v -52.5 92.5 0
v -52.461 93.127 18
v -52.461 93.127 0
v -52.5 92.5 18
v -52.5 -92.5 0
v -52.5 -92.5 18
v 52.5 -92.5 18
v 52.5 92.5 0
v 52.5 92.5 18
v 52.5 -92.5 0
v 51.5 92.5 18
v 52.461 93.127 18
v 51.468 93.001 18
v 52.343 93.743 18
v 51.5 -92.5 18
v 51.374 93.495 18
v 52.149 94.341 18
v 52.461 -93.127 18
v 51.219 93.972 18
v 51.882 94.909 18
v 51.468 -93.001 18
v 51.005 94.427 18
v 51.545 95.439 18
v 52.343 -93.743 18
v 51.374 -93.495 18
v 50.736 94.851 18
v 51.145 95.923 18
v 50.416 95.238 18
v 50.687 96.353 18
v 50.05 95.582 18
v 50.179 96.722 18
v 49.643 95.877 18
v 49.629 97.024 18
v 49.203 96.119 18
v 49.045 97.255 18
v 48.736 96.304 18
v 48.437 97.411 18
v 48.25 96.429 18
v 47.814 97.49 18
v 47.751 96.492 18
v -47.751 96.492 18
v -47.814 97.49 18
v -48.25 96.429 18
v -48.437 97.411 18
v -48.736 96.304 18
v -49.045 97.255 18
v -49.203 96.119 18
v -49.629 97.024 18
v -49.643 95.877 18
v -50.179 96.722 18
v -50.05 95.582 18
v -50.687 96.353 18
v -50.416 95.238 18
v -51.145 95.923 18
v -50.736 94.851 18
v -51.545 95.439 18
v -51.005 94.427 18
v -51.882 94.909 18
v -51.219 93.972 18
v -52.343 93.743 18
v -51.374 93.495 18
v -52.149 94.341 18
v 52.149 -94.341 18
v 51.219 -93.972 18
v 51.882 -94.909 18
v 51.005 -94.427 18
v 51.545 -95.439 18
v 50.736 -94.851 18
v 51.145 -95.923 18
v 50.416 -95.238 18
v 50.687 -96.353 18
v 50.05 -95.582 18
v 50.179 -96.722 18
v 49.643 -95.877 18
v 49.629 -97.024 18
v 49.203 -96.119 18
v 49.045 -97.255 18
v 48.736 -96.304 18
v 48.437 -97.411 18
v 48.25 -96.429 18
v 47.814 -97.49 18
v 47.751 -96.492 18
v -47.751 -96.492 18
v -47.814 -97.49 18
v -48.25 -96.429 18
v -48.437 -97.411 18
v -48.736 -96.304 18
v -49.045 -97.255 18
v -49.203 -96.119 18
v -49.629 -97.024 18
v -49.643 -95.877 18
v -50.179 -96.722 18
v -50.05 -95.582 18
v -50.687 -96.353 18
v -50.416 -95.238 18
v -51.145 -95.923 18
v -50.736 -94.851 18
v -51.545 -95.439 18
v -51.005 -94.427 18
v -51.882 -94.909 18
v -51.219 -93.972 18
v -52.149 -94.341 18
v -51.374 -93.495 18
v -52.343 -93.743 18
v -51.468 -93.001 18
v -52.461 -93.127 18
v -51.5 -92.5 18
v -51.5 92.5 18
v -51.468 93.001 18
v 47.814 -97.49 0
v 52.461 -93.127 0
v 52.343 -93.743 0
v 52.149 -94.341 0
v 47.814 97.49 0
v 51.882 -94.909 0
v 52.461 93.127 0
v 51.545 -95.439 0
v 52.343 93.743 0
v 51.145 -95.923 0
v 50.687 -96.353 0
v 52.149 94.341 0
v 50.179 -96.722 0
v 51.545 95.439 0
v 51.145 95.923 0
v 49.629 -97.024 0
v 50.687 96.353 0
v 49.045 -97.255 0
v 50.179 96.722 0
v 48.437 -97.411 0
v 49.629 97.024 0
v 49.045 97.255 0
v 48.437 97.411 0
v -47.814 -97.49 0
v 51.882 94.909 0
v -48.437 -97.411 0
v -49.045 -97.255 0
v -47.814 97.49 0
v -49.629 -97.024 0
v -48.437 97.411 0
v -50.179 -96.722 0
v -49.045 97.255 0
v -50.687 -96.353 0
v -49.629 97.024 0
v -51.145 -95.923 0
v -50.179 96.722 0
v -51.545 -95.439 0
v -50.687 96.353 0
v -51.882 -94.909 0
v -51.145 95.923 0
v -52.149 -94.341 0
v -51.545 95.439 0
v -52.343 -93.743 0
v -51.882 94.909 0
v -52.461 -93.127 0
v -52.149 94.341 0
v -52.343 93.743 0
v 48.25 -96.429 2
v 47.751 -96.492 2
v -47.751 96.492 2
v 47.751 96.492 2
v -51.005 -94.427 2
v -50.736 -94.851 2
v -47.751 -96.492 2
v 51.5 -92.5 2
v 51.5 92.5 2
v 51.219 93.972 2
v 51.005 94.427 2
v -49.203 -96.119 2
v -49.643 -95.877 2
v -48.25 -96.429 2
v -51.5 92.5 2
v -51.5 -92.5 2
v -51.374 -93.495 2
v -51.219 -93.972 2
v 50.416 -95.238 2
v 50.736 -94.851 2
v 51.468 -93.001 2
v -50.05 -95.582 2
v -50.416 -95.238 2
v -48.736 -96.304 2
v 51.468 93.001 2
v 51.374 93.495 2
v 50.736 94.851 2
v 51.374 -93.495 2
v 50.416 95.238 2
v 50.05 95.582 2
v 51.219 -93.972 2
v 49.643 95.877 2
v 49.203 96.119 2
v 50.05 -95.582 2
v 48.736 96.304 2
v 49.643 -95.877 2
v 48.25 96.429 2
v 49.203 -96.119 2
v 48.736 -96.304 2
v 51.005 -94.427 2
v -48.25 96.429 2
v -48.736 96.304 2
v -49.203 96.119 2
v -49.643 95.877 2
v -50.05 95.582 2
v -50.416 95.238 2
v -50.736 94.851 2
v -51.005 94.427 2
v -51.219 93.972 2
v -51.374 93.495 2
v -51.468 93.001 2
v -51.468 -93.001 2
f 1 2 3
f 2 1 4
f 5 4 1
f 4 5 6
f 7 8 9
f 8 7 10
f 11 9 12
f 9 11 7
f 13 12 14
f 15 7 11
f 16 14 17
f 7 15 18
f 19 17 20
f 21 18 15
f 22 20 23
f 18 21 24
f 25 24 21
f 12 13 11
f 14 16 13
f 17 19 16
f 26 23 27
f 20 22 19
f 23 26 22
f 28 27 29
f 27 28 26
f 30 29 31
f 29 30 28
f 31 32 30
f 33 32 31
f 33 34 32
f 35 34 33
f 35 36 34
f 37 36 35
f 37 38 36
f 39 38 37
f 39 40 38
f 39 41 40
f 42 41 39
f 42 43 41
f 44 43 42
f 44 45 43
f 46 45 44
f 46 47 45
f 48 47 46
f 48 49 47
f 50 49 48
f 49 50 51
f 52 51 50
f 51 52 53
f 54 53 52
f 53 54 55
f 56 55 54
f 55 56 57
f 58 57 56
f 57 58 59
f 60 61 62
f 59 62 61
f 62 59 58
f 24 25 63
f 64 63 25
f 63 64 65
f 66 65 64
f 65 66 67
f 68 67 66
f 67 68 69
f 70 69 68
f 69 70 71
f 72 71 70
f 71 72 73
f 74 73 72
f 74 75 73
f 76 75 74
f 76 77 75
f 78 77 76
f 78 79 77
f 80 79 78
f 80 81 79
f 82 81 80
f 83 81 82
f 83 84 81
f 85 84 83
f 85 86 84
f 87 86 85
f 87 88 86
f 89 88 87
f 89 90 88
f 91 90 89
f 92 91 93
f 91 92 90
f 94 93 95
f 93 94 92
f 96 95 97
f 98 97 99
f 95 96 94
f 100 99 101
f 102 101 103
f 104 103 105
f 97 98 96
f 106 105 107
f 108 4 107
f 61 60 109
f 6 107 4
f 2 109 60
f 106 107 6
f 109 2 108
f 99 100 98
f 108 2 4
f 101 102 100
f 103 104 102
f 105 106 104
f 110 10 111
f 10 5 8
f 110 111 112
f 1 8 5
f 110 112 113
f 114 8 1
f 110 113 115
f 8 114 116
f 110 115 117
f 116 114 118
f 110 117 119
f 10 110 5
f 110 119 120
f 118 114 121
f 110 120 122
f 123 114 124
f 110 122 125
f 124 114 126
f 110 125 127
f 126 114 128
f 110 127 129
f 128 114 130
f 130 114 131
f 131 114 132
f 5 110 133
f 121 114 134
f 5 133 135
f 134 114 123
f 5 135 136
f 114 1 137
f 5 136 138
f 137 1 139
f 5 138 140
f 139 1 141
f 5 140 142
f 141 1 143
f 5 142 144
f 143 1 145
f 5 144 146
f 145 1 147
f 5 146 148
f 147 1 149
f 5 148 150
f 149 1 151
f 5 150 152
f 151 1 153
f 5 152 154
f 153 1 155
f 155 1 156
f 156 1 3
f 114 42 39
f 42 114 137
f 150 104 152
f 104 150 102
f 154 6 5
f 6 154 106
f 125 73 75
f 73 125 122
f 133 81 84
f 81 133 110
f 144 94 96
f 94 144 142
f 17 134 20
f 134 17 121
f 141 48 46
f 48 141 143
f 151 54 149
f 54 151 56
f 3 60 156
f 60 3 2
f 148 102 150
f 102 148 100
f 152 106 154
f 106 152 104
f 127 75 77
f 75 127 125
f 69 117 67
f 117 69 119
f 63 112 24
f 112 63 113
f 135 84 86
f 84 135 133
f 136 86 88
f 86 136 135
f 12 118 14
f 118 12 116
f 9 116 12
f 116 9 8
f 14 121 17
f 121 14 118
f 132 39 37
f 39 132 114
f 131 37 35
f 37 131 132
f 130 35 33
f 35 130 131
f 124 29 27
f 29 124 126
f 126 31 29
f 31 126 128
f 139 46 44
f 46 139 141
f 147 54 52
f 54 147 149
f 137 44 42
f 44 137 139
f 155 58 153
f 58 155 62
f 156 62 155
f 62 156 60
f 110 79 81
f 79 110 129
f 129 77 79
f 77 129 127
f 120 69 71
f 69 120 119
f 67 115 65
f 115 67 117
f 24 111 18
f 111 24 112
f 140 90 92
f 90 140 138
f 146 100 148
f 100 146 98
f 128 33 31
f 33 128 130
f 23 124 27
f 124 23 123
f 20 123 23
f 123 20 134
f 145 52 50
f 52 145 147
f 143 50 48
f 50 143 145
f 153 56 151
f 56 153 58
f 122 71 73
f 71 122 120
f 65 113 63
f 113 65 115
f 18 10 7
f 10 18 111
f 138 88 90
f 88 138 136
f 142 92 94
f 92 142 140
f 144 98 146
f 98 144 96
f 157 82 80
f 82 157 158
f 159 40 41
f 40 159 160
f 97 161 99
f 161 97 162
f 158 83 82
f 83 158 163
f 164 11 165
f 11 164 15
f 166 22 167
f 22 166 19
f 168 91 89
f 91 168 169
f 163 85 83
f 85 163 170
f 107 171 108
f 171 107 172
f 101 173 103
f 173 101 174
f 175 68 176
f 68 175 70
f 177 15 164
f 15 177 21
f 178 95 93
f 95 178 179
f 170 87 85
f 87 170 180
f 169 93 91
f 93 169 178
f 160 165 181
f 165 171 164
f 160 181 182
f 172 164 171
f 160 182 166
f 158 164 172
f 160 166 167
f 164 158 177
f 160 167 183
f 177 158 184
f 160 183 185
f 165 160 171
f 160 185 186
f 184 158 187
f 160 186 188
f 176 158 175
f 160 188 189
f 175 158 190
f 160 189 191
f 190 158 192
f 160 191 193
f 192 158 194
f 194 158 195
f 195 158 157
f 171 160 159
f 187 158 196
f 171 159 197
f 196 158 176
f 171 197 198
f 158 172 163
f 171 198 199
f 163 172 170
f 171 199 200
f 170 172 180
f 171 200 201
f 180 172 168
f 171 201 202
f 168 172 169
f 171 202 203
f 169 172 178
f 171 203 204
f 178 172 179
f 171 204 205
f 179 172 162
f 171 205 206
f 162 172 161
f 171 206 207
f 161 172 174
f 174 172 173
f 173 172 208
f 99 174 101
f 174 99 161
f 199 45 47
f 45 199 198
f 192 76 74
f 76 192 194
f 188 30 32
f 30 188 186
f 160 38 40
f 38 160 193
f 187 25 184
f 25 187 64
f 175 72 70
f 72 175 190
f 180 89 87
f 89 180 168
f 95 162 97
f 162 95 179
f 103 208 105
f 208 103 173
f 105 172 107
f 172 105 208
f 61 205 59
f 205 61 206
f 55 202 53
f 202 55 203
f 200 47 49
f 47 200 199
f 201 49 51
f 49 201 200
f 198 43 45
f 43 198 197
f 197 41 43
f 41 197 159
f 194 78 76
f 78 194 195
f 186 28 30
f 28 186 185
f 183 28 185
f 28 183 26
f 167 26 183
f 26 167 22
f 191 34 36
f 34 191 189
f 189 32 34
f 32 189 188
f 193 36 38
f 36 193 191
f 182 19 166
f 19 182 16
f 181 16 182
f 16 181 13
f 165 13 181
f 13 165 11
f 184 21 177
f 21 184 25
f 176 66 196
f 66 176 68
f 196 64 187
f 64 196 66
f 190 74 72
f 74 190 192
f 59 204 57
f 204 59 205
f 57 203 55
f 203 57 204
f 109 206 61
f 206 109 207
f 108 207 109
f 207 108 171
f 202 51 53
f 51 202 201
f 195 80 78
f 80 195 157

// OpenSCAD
$fn = 50;


difference() {
	union() {
		hull() {
			translate(v = [-47.5000000000, 92.5000000000, 0]) {
				cylinder(h = 18, r = 5);
			}
			translate(v = [47.5000000000, 92.5000000000, 0]) {
				cylinder(h = 18, r = 5);
			}
			translate(v = [-47.5000000000, -92.5000000000, 0]) {
				cylinder(h = 18, r = 5);
			}
			translate(v = [47.5000000000, -92.5000000000, 0]) {
				cylinder(h = 18, r = 5);
			}
		}
	}
	union() {
		translate(v = [0, 0, 2]) {
			hull() {
				translate(v = [-47.5000000000, 92.5000000000, 0]) {
					cylinder(h = 16, r = 4);
				}
				translate(v = [47.5000000000, 92.5000000000, 0]) {
					cylinder(h = 16, r = 4);
				}
				translate(v = [-47.5000000000, -92.5000000000, 0]) {
					cylinder(h = 16, r = 4);
				}
				translate(v = [47.5000000000, -92.5000000000, 0]) {
					cylinder(h = 16, r = 4);
				}
			}
		}
	}
}
